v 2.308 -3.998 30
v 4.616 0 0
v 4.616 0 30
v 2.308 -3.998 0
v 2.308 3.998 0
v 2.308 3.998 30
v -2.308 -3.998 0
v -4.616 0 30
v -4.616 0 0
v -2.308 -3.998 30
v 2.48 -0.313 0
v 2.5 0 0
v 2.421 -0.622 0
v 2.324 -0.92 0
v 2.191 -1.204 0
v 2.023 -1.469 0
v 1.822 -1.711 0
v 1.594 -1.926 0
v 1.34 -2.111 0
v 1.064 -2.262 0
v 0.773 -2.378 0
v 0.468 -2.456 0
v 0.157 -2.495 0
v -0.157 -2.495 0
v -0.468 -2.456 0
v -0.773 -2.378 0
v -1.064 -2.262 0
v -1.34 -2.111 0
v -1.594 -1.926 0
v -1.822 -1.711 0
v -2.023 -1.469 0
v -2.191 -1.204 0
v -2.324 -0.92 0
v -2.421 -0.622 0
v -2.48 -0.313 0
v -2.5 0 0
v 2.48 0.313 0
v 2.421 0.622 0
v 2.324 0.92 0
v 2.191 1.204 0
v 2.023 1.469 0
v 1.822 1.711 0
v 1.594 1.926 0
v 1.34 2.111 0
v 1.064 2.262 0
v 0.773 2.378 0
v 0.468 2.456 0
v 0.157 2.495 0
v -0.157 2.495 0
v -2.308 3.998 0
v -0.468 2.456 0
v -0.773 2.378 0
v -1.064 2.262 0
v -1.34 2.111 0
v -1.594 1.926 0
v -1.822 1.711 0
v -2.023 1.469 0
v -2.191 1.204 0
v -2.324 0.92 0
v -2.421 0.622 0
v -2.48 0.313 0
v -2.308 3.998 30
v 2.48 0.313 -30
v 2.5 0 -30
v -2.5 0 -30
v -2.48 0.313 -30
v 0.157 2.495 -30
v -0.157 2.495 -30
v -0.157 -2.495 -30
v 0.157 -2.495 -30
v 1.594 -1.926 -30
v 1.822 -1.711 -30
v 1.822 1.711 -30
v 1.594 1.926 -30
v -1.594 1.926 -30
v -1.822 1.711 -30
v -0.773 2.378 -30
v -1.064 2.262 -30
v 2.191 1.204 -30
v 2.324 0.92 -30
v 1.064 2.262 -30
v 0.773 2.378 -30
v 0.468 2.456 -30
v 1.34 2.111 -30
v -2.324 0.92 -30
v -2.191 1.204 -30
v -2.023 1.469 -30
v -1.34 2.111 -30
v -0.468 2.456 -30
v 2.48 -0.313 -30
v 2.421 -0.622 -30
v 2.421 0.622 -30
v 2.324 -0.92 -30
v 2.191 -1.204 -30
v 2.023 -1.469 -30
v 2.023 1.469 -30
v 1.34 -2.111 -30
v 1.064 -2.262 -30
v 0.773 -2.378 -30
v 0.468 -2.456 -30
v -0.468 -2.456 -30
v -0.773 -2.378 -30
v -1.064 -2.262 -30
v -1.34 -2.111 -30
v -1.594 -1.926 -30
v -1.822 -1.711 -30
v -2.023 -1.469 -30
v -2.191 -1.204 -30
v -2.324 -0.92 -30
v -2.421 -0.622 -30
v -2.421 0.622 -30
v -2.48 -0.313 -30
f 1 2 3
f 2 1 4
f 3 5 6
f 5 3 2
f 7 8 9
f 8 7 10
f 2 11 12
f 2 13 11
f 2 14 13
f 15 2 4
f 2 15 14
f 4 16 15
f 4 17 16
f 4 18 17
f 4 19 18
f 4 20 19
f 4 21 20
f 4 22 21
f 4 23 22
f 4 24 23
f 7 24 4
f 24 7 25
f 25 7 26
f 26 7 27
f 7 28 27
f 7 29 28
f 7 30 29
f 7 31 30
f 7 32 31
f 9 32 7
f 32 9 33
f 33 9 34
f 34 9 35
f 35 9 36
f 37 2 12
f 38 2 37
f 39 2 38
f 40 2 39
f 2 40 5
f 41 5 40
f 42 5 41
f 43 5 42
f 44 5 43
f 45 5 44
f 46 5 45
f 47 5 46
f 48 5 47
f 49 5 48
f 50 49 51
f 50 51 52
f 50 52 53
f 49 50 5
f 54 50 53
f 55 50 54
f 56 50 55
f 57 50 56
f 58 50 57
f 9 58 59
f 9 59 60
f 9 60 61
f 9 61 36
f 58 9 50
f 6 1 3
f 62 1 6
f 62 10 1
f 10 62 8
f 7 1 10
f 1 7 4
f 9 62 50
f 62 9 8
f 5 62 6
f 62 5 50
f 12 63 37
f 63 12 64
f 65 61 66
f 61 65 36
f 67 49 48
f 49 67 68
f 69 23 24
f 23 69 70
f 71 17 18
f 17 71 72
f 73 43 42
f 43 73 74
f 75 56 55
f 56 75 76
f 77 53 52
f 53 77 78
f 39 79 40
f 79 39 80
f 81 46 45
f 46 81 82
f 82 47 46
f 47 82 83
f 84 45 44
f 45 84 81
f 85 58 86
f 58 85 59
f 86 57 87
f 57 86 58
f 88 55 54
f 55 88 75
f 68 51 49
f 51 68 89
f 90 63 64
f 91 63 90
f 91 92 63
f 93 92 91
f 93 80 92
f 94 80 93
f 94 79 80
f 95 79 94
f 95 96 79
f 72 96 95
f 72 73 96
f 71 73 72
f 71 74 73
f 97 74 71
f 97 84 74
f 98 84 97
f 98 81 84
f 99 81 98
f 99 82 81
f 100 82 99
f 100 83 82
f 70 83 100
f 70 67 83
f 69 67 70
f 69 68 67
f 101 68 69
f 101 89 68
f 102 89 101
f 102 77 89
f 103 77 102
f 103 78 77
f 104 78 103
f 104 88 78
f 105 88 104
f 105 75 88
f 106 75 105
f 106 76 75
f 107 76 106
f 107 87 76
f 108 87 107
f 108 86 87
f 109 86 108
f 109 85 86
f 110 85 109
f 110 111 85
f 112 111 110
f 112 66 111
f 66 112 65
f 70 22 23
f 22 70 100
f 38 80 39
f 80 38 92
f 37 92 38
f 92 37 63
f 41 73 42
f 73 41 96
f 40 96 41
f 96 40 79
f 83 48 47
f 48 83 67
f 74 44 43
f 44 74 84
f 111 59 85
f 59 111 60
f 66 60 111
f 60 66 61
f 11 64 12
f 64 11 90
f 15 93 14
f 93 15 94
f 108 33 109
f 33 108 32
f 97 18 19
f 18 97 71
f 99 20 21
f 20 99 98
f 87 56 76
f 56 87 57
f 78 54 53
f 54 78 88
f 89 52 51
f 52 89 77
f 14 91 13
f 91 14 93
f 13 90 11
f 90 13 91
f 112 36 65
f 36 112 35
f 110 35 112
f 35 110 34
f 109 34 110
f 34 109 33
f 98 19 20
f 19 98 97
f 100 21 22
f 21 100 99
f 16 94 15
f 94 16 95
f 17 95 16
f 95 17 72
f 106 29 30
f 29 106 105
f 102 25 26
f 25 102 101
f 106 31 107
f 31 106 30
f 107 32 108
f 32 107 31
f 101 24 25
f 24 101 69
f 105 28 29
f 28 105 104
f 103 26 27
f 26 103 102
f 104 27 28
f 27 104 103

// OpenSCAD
$fn = 50;


difference() {
	union() {
		linear_extrude(height = 30) {
			polygon(points = [[4.6160000000, 0.0000000000], [2.3080000000, 3.9975732639], [-2.3080000000, 3.9975732639], [-4.6160000000, 0.0000000000], [-2.3080000000, -3.9975732639], [2.3080000000, -3.9975732639]]);
		}
		translate(v = [0, 0, -30]) {
			cylinder(h = 30, r = 2.5000000000);
		}
	}
	union();
}
